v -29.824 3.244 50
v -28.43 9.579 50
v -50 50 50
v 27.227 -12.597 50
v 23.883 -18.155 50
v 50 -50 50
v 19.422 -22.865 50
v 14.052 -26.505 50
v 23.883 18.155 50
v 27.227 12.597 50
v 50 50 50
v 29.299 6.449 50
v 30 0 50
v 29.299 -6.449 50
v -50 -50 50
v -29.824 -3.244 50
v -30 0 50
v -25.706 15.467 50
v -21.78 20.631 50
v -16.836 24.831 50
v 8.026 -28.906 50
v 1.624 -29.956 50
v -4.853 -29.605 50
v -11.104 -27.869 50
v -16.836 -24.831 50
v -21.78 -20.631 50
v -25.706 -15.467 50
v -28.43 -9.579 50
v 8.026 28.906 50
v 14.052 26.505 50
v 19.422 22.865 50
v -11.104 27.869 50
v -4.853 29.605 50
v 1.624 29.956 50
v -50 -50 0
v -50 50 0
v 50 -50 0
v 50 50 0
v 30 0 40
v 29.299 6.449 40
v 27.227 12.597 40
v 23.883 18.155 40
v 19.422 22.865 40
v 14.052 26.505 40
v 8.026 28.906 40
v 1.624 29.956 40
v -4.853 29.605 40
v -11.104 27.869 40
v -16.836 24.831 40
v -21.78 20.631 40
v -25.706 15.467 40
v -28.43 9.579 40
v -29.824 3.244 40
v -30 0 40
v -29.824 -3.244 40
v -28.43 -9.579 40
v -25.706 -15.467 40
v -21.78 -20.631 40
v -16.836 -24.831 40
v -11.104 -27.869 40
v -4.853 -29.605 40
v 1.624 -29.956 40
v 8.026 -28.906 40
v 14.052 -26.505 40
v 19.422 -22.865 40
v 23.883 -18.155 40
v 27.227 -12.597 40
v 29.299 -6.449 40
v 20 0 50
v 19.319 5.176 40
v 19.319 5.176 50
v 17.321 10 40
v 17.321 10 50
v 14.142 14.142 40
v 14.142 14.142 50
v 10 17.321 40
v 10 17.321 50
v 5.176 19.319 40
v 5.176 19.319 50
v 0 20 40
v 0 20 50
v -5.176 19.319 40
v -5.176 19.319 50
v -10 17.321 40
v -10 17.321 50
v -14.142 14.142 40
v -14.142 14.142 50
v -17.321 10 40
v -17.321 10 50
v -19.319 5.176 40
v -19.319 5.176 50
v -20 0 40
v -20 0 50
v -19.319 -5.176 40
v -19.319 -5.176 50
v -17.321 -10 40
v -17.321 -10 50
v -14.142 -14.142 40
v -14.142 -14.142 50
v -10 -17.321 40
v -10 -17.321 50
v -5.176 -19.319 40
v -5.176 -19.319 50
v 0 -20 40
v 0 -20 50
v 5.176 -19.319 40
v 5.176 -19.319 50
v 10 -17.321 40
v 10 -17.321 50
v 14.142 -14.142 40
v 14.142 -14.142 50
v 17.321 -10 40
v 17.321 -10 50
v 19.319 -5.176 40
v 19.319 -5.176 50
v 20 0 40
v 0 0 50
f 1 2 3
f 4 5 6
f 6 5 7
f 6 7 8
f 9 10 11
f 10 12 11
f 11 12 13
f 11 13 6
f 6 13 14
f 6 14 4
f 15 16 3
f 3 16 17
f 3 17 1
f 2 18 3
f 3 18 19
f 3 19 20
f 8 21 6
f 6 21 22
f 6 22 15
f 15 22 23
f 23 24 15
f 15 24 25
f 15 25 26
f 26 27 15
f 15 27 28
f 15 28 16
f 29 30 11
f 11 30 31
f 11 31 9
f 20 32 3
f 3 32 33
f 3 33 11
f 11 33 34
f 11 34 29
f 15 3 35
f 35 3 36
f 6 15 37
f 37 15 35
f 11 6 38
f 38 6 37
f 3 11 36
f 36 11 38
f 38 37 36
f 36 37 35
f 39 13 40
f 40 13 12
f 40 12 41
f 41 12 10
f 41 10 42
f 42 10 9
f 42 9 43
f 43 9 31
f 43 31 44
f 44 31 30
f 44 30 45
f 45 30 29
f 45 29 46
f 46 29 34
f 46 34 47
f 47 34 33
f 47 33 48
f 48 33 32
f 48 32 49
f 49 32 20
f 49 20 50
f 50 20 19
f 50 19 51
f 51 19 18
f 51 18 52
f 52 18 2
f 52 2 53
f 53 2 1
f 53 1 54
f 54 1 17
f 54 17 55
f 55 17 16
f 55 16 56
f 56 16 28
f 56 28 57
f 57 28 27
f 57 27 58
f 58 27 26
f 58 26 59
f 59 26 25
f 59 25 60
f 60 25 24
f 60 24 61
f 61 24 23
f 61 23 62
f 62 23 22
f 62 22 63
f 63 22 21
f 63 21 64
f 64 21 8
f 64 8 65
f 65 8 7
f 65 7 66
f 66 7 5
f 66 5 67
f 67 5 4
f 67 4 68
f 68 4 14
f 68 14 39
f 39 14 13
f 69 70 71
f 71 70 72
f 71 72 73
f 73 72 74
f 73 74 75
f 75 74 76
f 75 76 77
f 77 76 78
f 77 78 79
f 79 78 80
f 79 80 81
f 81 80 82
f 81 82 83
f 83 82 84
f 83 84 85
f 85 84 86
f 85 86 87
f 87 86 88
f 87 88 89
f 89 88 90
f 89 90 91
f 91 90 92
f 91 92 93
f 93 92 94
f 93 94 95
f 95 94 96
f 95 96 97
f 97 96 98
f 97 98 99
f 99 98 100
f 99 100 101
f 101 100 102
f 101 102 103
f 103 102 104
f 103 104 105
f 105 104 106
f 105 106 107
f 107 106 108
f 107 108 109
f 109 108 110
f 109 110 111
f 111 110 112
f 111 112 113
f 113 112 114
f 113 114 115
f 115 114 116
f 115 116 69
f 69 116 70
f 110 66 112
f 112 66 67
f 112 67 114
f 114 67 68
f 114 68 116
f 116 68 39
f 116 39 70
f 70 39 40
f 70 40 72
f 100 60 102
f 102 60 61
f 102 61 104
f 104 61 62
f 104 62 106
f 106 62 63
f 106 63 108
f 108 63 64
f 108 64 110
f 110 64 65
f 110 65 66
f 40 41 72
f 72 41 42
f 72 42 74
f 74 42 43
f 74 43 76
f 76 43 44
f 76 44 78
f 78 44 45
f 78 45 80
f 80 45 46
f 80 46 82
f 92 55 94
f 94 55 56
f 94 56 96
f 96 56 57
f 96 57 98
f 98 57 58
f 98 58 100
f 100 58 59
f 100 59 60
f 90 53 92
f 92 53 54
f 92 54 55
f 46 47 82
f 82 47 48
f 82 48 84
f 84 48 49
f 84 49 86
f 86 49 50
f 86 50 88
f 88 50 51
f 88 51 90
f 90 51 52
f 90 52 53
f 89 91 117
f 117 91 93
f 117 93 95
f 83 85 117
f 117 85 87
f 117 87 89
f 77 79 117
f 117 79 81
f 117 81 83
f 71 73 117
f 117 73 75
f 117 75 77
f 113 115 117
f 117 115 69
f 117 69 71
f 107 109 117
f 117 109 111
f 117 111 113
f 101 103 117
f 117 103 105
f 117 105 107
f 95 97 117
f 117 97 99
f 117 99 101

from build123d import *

# Parameters (mm, degrees)
SKIZZE1_W                       = 100
SKIZZE1_H                       = 100
AUFSATZ_LINEAR_AUSTRAGEN1_DEPTH = 50
SKIZZE5_W                       = 10
SKIZZE5_H                       = 20


with BuildPart() as part:
    # Skizze1 → Aufsatz-Linear austragen1 (new body)
    with BuildSketch(Plane.XY):
        Rectangle(SKIZZE1_W, SKIZZE1_H)
    extrude(amount=AUFSATZ_LINEAR_AUSTRAGEN1_DEPTH)

    # Schnitt-Austragung1: sweep along a path in Skizze2
    with BuildLine(Plane.XY.offset(50)) as schnitt_austragung1_path:
        CenterArc((0, 0), 25, 0, 360)
    # Skizze5 → Schnitt-Austragung1 (sweep, cut)
    with BuildSketch(Plane(origin=(0, 0, 0), x_dir=(1, 0, 0), z_dir=(0, 1, 0))):
        with Locations((-25, -50)):
            Rectangle(SKIZZE5_W, SKIZZE5_H)
    sweep(path=schnitt_austragung1_path.line, mode=Mode.SUBTRACT)


solid = part.part
